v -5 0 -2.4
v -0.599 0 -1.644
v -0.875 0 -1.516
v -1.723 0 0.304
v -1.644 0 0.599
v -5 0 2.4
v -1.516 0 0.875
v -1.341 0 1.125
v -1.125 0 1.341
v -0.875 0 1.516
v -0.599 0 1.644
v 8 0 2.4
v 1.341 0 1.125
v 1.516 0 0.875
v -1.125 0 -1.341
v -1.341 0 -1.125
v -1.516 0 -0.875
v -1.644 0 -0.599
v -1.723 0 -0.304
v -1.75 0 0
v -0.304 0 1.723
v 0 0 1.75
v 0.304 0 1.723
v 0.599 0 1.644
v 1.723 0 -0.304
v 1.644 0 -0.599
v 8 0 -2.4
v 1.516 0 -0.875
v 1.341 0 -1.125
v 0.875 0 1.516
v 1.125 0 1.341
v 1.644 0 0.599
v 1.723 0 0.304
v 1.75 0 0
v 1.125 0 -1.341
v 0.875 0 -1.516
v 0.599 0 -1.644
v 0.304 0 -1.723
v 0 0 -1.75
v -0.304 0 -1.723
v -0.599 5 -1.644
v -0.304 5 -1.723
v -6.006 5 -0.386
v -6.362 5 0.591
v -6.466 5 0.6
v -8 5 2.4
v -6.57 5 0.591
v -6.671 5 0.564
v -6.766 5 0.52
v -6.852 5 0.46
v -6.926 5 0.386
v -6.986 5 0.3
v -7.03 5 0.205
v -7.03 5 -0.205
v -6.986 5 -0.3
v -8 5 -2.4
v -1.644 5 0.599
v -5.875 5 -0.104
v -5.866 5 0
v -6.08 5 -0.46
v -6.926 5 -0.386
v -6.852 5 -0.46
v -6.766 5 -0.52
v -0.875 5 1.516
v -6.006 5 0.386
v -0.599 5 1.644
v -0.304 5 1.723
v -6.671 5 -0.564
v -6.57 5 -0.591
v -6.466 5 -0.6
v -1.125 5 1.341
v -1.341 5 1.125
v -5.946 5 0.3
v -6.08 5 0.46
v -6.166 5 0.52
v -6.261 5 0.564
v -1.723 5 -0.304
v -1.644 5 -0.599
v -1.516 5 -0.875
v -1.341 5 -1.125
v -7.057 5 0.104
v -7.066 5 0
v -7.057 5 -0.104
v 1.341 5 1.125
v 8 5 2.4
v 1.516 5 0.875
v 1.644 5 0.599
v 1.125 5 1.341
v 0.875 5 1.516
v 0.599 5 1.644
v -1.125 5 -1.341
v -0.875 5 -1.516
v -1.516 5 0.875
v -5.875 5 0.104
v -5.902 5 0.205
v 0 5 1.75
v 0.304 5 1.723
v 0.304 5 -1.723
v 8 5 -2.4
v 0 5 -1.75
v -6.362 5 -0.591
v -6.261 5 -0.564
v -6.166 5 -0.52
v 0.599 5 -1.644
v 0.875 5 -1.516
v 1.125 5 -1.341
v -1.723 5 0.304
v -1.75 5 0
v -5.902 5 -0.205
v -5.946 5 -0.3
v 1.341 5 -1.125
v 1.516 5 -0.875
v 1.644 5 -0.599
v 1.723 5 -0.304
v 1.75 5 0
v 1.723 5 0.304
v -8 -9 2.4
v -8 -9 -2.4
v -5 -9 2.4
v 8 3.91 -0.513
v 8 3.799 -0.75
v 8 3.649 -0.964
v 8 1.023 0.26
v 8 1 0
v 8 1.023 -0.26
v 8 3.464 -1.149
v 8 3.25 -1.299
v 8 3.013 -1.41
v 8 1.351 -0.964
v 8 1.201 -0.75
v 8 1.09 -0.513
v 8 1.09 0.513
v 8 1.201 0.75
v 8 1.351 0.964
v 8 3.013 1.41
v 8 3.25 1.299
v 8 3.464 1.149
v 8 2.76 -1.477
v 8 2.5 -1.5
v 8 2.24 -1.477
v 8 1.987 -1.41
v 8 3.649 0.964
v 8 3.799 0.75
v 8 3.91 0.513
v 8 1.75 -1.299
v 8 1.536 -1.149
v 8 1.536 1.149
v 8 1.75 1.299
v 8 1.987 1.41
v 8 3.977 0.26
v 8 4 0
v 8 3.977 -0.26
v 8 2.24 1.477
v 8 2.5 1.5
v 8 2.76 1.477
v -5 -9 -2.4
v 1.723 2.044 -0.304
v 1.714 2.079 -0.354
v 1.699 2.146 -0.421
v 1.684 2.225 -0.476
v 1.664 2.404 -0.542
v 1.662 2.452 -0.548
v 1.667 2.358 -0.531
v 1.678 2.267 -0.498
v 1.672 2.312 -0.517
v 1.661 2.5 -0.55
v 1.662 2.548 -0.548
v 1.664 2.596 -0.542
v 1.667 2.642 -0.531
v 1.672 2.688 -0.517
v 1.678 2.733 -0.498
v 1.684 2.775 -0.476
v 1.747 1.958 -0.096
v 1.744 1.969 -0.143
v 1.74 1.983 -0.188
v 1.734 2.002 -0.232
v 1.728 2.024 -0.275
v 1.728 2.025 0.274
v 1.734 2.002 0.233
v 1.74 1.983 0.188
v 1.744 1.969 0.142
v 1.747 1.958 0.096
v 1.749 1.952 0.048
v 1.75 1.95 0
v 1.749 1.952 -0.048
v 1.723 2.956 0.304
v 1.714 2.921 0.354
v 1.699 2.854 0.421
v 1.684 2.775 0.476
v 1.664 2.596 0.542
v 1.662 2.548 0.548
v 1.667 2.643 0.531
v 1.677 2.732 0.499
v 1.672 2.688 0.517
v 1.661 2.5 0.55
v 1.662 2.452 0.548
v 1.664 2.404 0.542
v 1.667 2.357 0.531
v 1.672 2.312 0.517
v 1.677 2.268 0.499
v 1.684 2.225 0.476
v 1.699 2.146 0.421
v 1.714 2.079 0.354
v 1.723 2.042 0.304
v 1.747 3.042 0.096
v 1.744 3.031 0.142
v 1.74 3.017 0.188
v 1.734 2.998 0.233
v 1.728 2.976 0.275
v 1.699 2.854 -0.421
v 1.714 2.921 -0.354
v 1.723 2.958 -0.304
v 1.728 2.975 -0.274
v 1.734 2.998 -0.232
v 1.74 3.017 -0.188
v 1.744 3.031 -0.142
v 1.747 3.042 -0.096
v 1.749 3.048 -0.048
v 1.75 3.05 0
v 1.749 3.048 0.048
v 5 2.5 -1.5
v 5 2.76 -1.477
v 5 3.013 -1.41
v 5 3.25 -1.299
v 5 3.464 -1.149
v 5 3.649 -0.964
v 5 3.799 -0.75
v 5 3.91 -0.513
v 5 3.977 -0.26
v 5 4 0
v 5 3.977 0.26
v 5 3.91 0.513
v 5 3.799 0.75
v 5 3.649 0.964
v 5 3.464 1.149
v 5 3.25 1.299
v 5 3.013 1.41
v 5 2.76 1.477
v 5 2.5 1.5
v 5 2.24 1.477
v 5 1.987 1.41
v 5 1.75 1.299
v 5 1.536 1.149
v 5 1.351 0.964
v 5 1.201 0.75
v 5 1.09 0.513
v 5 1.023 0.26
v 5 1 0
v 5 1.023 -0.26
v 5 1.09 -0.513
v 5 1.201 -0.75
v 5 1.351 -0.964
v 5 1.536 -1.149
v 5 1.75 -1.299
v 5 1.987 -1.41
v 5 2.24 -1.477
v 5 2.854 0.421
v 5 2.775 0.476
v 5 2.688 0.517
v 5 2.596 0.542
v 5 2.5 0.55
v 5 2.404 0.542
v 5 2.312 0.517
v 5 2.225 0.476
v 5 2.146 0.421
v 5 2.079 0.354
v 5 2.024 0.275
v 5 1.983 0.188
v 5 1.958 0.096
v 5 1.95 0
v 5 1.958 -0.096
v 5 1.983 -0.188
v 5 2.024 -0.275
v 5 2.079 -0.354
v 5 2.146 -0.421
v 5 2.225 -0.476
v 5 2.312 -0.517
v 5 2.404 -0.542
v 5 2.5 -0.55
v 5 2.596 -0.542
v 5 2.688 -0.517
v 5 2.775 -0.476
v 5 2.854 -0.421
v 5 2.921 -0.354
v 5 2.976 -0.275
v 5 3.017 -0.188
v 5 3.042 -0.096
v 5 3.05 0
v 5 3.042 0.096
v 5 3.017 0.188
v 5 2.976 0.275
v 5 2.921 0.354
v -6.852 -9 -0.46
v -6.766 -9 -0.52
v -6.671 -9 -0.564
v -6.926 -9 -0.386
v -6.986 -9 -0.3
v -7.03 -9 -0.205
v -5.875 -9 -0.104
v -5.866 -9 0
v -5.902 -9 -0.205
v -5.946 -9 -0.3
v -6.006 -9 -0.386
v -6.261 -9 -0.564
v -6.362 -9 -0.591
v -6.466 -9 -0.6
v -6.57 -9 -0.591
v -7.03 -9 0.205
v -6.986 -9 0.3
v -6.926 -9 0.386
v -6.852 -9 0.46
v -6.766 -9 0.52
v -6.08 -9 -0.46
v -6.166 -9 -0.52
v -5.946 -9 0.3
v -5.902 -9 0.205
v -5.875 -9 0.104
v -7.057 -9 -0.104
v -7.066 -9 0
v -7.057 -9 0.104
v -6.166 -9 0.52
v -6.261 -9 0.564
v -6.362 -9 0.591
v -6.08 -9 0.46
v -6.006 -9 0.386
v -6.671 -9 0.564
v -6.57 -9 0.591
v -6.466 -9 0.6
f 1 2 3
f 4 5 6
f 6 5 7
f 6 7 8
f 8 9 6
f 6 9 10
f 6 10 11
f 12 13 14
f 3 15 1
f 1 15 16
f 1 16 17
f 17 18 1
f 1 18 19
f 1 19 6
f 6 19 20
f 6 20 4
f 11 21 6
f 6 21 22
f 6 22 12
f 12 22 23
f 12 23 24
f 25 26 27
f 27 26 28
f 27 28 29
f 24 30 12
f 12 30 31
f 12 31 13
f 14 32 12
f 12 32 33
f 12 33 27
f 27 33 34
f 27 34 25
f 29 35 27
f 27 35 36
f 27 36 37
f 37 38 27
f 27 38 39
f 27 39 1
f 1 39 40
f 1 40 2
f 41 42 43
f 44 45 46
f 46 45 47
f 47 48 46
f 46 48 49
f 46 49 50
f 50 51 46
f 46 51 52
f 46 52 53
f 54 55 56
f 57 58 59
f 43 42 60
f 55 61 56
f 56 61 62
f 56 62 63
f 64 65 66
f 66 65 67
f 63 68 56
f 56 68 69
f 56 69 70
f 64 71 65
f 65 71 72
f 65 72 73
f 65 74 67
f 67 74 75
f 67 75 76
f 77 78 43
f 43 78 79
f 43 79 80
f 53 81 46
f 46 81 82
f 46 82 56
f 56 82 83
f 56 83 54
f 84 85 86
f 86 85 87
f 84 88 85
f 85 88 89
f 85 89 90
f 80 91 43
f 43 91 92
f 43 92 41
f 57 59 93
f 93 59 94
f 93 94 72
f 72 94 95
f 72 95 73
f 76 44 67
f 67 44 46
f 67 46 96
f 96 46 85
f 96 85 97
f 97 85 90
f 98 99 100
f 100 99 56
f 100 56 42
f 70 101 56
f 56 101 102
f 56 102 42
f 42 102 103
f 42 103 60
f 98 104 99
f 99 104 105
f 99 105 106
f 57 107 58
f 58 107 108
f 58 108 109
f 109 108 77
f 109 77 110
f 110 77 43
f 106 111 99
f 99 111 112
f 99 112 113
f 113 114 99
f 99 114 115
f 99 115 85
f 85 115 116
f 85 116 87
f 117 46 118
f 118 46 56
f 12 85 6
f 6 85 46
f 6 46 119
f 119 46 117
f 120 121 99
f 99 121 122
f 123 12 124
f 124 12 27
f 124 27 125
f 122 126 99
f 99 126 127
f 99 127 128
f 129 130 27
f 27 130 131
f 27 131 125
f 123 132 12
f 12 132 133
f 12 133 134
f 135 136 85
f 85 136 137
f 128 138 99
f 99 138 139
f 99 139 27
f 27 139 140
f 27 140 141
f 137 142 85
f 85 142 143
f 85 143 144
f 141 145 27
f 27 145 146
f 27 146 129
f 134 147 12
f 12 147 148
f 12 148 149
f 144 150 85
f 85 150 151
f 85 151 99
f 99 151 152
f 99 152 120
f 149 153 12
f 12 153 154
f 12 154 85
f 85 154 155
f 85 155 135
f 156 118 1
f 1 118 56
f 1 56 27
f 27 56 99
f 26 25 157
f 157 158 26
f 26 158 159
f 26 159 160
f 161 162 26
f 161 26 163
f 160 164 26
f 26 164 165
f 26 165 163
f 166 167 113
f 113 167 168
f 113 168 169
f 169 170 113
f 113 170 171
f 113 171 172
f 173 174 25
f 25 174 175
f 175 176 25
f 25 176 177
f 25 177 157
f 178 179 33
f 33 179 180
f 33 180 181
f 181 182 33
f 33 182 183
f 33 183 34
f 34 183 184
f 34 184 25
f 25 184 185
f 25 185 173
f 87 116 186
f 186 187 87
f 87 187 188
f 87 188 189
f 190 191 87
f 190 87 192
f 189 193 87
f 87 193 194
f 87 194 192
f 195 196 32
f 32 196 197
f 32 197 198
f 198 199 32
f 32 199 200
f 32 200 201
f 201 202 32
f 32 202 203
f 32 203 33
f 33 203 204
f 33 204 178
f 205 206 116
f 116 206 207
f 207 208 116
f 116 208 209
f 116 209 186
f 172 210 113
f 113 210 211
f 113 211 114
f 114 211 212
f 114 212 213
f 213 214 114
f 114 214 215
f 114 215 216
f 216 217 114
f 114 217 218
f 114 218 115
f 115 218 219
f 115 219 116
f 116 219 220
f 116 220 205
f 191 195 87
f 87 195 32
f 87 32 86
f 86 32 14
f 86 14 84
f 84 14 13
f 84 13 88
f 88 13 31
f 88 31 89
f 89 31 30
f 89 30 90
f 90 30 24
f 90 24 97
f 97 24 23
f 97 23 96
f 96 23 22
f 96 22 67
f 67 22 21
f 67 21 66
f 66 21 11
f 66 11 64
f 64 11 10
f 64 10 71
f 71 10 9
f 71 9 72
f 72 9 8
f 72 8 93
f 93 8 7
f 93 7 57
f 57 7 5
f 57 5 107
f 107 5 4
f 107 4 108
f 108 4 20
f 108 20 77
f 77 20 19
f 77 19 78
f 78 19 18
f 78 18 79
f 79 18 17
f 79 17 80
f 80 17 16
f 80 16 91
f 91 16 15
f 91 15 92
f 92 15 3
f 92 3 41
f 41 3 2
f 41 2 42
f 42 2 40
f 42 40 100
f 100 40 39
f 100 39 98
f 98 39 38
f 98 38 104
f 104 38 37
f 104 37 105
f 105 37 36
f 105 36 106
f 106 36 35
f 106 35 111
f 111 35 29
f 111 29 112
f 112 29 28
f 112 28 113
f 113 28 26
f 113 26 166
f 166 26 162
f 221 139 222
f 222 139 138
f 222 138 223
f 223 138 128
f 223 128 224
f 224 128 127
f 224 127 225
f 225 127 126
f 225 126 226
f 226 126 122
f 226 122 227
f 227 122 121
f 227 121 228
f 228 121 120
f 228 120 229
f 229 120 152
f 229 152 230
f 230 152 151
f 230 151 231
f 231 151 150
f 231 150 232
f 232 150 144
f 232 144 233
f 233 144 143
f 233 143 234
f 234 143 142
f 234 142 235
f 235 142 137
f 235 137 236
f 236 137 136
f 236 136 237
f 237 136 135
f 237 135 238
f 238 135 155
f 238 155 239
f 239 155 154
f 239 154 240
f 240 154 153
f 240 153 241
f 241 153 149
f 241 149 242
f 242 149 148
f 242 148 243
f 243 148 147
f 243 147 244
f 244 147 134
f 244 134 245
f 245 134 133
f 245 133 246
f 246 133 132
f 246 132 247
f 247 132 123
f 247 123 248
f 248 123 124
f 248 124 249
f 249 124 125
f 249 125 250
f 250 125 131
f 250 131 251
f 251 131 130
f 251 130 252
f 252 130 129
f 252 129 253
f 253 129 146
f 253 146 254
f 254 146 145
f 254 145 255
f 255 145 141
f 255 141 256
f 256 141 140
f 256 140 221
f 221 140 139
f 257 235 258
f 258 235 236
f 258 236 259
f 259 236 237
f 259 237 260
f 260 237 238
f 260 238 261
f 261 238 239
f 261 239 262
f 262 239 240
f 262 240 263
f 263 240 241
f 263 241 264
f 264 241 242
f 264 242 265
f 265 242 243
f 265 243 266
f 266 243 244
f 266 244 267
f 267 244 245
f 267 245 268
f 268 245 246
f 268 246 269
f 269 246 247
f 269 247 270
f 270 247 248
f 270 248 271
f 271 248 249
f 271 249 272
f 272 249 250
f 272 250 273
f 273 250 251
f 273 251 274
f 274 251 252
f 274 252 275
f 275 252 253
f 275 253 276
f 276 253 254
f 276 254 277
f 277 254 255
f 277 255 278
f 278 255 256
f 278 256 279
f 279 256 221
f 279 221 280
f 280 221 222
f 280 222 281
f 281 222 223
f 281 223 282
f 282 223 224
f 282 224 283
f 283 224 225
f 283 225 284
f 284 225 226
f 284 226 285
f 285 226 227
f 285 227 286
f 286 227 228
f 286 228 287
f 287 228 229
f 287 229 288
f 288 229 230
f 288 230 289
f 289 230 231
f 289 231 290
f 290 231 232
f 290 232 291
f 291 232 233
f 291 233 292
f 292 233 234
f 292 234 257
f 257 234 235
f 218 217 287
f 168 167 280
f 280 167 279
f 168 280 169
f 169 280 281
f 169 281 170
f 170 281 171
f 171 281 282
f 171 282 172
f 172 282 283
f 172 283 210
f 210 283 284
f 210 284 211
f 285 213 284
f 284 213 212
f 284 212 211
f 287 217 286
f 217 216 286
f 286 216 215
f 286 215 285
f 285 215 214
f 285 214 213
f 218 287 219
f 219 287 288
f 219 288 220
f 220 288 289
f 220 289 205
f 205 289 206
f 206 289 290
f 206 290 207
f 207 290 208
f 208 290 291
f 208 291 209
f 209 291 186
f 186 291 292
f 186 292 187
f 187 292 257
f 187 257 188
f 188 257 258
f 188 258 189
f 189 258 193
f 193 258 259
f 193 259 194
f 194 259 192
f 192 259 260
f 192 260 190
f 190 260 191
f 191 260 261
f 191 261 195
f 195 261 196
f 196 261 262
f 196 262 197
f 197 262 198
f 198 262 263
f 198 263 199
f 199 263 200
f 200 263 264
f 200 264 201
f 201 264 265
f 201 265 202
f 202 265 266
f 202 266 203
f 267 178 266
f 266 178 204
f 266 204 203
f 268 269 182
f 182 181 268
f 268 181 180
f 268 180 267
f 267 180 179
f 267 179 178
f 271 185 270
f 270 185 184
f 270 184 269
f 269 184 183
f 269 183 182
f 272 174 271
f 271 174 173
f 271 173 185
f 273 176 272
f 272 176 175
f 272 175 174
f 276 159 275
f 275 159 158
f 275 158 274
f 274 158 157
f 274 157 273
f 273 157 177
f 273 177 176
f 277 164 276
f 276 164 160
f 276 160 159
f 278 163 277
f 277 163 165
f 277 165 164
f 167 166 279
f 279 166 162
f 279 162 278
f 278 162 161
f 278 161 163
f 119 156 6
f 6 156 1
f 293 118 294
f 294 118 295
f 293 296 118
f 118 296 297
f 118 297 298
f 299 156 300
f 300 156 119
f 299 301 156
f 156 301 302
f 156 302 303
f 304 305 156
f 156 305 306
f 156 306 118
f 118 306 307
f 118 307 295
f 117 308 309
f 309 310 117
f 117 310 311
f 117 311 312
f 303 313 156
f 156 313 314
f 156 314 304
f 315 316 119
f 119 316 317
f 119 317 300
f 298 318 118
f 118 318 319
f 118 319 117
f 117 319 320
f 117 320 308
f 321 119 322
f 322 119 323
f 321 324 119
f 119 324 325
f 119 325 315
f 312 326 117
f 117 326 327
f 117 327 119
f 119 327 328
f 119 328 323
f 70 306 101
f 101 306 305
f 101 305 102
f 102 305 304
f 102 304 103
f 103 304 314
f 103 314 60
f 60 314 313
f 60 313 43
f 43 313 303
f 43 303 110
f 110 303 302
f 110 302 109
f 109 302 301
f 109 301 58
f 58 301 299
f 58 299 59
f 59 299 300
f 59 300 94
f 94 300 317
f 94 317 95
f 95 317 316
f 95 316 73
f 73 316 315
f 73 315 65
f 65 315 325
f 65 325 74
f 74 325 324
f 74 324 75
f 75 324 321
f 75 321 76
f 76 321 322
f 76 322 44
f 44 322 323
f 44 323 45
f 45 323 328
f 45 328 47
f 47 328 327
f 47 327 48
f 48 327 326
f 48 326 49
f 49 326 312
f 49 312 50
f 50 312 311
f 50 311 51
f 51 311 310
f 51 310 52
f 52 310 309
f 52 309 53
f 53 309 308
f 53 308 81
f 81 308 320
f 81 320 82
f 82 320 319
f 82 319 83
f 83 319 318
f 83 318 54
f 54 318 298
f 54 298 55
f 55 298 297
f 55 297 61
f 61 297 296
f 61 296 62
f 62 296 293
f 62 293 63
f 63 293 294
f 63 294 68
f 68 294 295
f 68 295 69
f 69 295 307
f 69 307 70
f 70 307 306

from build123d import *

# Parameters (mm, degrees)
SKETCH_1_W          = 16
SKETCH_1_H          = 4.8
SKETCH_1_R          = 1.75
EXTRUDE_1_DEPTH     = 5
SKETCH_2_R          = 1.5
CUT_EXTRUDE_1_DEPTH = 3
SKETCH_3_R          = 0.55
CUT_EXTRUDE_2_DEPTH = 4
SKETCH_5_W          = 3
SKETCH_5_H          = 4.8
EXTRUDE_2_DEPTH     = 9
SKETCH_6_R          = 0.6
CUT_EXTRUDE_3_DEPTH = 15.0000001


with BuildPart() as part:
    # 草图1 → 凸台-拉伸1 (new body)
    with BuildSketch(Plane(origin=(0, 0, 0), x_dir=(1, 0, 0), z_dir=(0, 1, 0))):
        Rectangle(SKETCH_1_W, SKETCH_1_H)
        Circle(SKETCH_1_R, mode=Mode.SUBTRACT)
    extrude(amount=EXTRUDE_1_DEPTH)

    # 草图2 → 切除-拉伸1 (cut)
    with BuildSketch(Plane(origin=(8, 0, 0), x_dir=(0, 0, -1), z_dir=(1, 0, 0))):
        with Locations((0, 2.5)):
            Circle(SKETCH_2_R)
    extrude(amount=-CUT_EXTRUDE_1_DEPTH, mode=Mode.SUBTRACT)

    # 草图3 → 切除-拉伸2 (cut)
    with BuildSketch(Plane(origin=(5, 0, 0), x_dir=(0, 0, -1), z_dir=(1, 0, 0))):
        with Locations((0, 2.5)):
            Circle(SKETCH_3_R)
    extrude(amount=-CUT_EXTRUDE_2_DEPTH, mode=Mode.SUBTRACT)

    # 草图5 → 凸台-拉伸2 (add)
    with BuildSketch(Plane.XZ):
        with Locations((-6.5, 0)):
            Rectangle(SKETCH_5_W, SKETCH_5_H)
    extrude(amount=EXTRUDE_2_DEPTH)

    # 草图6 → 切除-拉伸3 (cut, through all)
    with BuildSketch(Plane.XZ.offset(9)):
        with Locations((-6.465889023, 0)):
            Circle(SKETCH_6_R)
    extrude(amount=-CUT_EXTRUDE_3_DEPTH, mode=Mode.SUBTRACT)


solid = part.part
